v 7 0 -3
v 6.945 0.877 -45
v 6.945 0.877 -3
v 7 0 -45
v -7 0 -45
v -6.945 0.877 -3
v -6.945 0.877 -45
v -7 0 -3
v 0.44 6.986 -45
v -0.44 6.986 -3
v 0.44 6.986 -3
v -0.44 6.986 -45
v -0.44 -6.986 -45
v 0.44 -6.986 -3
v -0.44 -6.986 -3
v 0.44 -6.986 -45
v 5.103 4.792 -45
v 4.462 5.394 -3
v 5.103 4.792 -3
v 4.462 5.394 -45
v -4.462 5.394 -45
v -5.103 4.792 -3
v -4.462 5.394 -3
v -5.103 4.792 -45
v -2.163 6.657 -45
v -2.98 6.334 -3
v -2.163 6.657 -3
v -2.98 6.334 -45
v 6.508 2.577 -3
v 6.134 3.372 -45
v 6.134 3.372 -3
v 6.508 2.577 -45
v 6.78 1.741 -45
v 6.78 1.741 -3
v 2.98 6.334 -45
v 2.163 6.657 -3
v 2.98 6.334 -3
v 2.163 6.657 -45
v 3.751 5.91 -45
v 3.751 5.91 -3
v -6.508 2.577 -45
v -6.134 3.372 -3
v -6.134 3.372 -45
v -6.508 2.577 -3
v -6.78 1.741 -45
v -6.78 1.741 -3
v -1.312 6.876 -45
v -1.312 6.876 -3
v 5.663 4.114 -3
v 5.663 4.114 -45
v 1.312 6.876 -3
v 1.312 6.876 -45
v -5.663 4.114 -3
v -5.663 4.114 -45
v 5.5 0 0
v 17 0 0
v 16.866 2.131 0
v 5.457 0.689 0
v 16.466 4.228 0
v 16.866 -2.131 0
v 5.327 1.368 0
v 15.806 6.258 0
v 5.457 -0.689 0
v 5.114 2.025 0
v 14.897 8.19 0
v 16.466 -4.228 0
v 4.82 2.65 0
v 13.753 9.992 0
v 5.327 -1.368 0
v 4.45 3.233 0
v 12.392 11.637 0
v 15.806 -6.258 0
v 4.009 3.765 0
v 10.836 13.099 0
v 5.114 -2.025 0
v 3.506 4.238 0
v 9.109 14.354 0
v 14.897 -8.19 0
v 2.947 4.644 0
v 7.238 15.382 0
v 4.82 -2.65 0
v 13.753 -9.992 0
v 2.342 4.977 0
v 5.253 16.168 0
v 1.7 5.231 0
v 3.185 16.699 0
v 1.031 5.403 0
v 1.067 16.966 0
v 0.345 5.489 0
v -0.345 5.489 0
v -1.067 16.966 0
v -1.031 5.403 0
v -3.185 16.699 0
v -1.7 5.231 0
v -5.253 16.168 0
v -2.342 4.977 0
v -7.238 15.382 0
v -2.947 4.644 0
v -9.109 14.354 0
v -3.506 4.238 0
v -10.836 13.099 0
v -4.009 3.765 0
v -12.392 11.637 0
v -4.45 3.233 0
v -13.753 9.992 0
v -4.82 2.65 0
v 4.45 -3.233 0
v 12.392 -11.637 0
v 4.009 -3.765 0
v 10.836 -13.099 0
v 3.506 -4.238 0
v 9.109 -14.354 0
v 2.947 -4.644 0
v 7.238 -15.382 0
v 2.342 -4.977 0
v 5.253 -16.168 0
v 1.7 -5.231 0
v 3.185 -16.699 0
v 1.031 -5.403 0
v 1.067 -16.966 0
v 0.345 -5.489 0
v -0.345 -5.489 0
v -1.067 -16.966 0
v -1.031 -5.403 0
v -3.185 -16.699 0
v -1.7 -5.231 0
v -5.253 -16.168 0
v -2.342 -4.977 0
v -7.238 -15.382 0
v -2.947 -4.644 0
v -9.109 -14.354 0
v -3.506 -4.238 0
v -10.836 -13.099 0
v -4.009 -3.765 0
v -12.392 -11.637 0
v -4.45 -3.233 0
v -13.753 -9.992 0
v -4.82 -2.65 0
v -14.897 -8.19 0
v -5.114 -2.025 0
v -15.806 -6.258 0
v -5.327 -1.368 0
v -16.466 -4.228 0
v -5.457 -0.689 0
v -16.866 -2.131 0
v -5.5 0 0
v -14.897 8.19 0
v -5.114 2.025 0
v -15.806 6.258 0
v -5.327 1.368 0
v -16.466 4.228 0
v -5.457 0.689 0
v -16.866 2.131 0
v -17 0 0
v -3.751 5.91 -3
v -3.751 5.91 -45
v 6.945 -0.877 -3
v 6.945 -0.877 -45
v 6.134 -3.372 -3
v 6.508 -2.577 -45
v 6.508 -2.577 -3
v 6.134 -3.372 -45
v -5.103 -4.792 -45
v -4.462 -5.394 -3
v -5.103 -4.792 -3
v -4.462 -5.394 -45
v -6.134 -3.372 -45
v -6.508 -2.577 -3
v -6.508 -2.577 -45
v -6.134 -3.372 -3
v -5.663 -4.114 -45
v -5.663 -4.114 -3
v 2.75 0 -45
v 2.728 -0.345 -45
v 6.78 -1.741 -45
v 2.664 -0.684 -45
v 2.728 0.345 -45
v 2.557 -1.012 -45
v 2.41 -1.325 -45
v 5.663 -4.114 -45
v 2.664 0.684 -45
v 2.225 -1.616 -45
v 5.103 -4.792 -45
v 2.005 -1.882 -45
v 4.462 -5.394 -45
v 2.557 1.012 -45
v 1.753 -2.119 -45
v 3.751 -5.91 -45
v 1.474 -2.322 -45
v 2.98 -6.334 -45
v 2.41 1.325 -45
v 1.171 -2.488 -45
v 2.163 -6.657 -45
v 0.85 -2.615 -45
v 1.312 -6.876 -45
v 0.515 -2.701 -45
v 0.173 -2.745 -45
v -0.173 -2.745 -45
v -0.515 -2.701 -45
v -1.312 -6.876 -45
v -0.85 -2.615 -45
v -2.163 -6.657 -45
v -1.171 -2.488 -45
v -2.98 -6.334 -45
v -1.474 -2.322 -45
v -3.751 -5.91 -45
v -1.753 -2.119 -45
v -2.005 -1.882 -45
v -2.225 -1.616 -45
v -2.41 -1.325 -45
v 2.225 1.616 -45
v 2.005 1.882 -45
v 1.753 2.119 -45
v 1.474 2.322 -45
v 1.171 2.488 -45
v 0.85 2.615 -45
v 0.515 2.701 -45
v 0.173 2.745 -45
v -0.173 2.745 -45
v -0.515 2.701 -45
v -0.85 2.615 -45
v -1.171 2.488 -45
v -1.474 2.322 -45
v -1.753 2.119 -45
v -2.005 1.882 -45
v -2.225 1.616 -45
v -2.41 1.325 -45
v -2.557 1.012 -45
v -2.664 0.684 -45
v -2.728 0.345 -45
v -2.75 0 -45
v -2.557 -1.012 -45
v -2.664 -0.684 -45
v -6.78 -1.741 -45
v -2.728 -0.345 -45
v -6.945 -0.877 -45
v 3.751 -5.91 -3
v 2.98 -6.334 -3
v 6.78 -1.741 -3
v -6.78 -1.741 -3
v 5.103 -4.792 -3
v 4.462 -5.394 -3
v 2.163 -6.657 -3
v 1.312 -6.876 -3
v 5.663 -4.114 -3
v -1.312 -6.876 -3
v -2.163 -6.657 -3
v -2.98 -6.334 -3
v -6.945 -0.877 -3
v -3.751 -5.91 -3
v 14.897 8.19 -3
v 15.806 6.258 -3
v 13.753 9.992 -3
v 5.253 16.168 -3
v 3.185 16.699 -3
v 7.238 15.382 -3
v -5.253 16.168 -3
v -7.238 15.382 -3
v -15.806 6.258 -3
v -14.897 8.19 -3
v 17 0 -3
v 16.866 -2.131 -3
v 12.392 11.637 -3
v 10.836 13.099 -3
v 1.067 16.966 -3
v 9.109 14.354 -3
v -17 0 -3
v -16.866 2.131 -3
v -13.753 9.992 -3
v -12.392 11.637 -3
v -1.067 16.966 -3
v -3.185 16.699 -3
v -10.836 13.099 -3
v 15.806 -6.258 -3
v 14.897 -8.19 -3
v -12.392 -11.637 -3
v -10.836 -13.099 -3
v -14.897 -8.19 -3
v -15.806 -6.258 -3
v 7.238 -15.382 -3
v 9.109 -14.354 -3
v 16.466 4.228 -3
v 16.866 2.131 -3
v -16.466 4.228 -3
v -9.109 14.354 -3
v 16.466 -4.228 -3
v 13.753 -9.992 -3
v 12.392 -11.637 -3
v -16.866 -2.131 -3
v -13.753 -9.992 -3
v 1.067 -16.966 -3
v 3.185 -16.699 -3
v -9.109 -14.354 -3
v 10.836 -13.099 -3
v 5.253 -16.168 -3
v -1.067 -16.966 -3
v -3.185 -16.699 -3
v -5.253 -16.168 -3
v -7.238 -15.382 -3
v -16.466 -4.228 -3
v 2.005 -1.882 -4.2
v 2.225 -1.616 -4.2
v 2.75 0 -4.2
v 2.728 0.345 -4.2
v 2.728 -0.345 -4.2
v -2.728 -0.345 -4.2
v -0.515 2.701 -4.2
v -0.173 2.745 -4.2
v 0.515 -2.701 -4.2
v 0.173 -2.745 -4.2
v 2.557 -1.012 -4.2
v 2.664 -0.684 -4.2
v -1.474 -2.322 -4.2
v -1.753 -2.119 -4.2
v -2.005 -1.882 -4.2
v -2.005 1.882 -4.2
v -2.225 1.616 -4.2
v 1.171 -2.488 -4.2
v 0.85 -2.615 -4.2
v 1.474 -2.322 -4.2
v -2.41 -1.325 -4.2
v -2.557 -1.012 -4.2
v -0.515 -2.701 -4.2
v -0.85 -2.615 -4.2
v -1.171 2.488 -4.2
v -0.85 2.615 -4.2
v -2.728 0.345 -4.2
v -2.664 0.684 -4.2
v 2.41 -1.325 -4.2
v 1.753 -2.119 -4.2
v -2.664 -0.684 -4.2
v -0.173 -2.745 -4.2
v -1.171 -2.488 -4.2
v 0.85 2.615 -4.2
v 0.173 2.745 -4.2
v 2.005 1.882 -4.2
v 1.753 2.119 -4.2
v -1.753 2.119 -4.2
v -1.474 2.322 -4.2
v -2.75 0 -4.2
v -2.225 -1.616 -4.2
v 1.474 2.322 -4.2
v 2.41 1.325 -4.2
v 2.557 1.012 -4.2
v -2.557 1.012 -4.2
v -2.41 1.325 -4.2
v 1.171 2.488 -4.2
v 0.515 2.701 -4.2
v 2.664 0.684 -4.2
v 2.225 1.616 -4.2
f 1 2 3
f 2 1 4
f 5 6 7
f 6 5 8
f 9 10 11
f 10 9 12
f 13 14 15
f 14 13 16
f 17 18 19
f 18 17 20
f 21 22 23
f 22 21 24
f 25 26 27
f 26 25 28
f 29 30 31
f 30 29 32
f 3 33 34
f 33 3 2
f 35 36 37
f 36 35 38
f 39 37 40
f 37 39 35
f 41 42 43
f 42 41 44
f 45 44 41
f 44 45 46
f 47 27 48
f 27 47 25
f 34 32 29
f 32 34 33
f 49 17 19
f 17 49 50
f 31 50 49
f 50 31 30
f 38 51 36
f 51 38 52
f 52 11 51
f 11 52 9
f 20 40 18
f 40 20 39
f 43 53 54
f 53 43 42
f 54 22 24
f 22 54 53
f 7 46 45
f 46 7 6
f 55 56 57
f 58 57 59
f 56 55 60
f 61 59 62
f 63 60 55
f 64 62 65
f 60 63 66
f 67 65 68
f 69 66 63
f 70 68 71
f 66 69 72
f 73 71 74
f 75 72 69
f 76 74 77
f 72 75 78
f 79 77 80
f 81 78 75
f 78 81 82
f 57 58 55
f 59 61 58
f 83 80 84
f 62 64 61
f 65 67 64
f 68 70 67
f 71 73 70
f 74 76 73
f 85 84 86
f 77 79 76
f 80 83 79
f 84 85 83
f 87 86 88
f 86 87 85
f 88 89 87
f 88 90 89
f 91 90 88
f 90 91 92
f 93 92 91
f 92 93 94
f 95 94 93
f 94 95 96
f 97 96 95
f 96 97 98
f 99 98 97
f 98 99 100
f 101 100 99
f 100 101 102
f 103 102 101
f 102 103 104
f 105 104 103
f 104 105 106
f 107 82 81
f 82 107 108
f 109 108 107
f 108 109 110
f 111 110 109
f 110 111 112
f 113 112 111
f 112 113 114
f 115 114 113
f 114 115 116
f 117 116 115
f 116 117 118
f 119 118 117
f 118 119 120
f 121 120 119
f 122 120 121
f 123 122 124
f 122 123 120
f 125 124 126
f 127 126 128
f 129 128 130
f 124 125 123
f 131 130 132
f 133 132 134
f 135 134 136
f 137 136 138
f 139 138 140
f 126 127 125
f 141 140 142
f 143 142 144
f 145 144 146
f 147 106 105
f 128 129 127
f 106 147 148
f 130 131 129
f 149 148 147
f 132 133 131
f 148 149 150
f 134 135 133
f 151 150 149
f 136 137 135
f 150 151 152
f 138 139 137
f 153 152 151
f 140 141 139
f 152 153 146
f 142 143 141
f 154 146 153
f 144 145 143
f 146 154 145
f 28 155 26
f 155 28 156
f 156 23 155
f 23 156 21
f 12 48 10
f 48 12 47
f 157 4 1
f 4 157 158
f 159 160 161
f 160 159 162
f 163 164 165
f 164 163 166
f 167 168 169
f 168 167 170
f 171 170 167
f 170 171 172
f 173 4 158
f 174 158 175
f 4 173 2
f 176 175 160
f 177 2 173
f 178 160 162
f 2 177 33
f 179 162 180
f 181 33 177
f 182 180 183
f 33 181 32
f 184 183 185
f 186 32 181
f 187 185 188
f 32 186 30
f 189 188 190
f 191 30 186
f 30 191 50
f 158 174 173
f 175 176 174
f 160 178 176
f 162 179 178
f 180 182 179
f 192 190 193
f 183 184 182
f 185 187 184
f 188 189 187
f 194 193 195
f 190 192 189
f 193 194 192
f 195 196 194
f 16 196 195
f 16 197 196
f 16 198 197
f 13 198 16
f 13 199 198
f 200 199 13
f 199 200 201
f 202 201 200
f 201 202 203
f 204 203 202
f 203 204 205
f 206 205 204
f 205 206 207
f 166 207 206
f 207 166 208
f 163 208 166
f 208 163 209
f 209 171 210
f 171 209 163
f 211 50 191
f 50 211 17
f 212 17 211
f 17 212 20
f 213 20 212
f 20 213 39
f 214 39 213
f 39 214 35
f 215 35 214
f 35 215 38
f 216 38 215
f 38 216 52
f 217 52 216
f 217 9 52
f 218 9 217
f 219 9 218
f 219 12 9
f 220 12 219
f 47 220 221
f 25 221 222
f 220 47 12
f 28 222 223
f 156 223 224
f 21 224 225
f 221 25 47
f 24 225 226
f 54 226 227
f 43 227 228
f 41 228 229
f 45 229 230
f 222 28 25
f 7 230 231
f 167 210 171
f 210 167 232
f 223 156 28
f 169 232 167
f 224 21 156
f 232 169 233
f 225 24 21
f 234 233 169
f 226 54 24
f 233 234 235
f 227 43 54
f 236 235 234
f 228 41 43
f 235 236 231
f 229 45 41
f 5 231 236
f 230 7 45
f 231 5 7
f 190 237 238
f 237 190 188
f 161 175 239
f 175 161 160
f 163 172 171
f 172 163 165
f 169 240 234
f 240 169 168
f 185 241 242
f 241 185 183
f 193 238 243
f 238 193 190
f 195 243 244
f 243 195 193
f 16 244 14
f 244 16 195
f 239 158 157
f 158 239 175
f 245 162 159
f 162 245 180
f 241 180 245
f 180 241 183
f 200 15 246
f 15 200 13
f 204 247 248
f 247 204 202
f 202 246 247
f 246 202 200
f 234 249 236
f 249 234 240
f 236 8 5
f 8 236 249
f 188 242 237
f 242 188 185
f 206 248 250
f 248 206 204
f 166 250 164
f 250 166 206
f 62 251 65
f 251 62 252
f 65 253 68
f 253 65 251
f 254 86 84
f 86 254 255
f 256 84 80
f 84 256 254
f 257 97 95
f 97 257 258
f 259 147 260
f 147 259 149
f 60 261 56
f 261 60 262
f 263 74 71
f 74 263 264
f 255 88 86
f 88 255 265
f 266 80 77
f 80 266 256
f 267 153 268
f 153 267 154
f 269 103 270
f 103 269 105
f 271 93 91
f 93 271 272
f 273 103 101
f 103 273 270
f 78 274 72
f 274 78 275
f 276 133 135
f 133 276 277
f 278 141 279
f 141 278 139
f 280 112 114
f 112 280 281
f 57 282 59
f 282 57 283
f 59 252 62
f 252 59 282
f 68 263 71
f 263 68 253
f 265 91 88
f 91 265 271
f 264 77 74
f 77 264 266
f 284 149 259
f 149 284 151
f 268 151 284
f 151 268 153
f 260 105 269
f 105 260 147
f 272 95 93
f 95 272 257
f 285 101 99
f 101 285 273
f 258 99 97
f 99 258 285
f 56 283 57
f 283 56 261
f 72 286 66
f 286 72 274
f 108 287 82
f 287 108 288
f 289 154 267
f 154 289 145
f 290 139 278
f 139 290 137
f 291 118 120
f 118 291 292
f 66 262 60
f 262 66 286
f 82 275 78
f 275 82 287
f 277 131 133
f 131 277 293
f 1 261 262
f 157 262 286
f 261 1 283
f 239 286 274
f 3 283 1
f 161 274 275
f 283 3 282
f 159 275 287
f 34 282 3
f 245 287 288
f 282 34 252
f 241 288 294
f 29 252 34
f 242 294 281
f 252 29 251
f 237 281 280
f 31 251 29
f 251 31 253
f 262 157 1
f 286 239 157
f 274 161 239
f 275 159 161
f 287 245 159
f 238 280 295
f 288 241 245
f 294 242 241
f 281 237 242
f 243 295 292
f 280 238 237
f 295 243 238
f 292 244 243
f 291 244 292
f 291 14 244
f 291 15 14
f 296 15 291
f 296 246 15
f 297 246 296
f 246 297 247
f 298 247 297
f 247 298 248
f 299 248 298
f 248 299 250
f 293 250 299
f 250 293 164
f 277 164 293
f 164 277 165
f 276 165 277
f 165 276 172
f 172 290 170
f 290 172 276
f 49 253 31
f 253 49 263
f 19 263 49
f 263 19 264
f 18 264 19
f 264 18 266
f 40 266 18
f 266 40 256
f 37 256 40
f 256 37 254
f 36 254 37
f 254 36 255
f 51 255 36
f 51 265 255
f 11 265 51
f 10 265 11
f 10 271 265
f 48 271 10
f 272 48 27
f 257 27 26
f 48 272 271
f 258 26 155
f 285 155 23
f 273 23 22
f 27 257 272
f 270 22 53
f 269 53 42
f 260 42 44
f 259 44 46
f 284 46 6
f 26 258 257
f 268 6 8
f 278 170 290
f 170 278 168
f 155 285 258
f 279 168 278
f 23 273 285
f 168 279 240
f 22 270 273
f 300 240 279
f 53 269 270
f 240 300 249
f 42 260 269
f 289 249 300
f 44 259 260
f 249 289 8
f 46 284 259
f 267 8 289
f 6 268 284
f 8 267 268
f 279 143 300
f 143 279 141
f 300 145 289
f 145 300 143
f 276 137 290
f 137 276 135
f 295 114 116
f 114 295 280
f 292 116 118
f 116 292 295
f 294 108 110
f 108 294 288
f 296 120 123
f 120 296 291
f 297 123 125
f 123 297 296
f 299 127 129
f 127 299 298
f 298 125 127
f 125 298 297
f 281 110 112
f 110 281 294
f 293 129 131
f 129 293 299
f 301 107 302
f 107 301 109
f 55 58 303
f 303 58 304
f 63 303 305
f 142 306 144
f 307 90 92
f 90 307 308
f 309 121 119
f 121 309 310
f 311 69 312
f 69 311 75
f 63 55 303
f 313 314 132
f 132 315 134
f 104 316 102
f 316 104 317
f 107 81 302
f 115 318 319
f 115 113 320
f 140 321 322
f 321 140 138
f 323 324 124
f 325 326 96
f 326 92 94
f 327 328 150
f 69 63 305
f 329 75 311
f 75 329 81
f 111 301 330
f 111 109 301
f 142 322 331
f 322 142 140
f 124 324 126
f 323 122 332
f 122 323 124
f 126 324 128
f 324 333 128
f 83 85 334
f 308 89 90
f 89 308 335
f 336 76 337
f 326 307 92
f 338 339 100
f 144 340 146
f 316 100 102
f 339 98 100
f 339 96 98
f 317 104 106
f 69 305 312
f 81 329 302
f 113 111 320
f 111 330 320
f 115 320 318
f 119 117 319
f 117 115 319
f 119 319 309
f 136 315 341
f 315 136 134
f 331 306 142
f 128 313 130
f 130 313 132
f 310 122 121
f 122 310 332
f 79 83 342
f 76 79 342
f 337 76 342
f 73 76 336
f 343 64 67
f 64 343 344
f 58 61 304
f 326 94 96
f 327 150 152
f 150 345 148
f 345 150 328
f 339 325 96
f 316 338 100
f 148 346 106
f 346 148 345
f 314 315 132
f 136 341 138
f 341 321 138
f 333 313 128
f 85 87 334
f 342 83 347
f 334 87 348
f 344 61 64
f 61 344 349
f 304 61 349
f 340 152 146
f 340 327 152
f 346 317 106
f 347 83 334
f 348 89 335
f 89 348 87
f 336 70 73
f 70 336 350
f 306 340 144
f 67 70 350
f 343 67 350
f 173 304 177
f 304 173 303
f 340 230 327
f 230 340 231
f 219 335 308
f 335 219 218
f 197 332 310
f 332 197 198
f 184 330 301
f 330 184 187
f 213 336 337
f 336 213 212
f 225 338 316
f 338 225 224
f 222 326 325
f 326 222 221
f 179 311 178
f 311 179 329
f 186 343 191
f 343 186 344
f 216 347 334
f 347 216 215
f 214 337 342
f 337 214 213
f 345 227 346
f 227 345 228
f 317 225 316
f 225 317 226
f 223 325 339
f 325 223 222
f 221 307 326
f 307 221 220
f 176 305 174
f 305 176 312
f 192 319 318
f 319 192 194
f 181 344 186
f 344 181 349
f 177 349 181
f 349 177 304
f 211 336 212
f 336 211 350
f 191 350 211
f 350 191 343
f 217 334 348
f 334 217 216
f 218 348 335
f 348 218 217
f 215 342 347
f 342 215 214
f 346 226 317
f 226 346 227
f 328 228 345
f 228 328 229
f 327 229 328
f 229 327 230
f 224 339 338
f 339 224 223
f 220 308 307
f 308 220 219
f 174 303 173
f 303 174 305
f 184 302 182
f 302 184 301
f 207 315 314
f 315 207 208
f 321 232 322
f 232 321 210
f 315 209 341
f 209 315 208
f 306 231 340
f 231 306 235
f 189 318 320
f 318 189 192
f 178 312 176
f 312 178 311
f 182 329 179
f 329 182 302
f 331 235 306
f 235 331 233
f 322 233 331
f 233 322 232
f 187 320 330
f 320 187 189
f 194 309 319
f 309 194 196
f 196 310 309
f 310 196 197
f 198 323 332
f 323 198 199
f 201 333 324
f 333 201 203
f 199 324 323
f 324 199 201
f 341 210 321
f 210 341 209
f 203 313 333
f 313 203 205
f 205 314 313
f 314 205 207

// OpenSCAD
$fn = 50;


difference() {
	union() {
		translate(v = [0, 0, -45.0000000000]) {
			cylinder(h = 45, r = 7.0000000000);
		}
		translate(v = [0, 0, -3.0000000000]) {
			cylinder(h = 3, r = 17.0000000000);
		}
	}
	union() {
		translate(v = [0, 0, 0]) {
			rotate(a = [0, 0, 0]) {
				difference() {
					union() {
						#translate(v = [0, 0, -45.0000000000]) {
							cylinder(h = 45, r = 2.2500000000);
						}
						#translate(v = [0, 0, -4.2000000000]) {
							cylinder(h = 4.2000000000, r = 7.0000000000, r1 = 2.7500000000, r2 = 5.5000000000);
						}
						#translate(v = [0, 0, -45.0000000000]) {
							cylinder(h = 45, r = 2.7500000000);
						}
						#translate(v = [0, 0, -45.0000000000]) {
							cylinder(h = 45, r = 2.2500000000);
						}
					}
					union();
				}
			}
		}
	}
}
